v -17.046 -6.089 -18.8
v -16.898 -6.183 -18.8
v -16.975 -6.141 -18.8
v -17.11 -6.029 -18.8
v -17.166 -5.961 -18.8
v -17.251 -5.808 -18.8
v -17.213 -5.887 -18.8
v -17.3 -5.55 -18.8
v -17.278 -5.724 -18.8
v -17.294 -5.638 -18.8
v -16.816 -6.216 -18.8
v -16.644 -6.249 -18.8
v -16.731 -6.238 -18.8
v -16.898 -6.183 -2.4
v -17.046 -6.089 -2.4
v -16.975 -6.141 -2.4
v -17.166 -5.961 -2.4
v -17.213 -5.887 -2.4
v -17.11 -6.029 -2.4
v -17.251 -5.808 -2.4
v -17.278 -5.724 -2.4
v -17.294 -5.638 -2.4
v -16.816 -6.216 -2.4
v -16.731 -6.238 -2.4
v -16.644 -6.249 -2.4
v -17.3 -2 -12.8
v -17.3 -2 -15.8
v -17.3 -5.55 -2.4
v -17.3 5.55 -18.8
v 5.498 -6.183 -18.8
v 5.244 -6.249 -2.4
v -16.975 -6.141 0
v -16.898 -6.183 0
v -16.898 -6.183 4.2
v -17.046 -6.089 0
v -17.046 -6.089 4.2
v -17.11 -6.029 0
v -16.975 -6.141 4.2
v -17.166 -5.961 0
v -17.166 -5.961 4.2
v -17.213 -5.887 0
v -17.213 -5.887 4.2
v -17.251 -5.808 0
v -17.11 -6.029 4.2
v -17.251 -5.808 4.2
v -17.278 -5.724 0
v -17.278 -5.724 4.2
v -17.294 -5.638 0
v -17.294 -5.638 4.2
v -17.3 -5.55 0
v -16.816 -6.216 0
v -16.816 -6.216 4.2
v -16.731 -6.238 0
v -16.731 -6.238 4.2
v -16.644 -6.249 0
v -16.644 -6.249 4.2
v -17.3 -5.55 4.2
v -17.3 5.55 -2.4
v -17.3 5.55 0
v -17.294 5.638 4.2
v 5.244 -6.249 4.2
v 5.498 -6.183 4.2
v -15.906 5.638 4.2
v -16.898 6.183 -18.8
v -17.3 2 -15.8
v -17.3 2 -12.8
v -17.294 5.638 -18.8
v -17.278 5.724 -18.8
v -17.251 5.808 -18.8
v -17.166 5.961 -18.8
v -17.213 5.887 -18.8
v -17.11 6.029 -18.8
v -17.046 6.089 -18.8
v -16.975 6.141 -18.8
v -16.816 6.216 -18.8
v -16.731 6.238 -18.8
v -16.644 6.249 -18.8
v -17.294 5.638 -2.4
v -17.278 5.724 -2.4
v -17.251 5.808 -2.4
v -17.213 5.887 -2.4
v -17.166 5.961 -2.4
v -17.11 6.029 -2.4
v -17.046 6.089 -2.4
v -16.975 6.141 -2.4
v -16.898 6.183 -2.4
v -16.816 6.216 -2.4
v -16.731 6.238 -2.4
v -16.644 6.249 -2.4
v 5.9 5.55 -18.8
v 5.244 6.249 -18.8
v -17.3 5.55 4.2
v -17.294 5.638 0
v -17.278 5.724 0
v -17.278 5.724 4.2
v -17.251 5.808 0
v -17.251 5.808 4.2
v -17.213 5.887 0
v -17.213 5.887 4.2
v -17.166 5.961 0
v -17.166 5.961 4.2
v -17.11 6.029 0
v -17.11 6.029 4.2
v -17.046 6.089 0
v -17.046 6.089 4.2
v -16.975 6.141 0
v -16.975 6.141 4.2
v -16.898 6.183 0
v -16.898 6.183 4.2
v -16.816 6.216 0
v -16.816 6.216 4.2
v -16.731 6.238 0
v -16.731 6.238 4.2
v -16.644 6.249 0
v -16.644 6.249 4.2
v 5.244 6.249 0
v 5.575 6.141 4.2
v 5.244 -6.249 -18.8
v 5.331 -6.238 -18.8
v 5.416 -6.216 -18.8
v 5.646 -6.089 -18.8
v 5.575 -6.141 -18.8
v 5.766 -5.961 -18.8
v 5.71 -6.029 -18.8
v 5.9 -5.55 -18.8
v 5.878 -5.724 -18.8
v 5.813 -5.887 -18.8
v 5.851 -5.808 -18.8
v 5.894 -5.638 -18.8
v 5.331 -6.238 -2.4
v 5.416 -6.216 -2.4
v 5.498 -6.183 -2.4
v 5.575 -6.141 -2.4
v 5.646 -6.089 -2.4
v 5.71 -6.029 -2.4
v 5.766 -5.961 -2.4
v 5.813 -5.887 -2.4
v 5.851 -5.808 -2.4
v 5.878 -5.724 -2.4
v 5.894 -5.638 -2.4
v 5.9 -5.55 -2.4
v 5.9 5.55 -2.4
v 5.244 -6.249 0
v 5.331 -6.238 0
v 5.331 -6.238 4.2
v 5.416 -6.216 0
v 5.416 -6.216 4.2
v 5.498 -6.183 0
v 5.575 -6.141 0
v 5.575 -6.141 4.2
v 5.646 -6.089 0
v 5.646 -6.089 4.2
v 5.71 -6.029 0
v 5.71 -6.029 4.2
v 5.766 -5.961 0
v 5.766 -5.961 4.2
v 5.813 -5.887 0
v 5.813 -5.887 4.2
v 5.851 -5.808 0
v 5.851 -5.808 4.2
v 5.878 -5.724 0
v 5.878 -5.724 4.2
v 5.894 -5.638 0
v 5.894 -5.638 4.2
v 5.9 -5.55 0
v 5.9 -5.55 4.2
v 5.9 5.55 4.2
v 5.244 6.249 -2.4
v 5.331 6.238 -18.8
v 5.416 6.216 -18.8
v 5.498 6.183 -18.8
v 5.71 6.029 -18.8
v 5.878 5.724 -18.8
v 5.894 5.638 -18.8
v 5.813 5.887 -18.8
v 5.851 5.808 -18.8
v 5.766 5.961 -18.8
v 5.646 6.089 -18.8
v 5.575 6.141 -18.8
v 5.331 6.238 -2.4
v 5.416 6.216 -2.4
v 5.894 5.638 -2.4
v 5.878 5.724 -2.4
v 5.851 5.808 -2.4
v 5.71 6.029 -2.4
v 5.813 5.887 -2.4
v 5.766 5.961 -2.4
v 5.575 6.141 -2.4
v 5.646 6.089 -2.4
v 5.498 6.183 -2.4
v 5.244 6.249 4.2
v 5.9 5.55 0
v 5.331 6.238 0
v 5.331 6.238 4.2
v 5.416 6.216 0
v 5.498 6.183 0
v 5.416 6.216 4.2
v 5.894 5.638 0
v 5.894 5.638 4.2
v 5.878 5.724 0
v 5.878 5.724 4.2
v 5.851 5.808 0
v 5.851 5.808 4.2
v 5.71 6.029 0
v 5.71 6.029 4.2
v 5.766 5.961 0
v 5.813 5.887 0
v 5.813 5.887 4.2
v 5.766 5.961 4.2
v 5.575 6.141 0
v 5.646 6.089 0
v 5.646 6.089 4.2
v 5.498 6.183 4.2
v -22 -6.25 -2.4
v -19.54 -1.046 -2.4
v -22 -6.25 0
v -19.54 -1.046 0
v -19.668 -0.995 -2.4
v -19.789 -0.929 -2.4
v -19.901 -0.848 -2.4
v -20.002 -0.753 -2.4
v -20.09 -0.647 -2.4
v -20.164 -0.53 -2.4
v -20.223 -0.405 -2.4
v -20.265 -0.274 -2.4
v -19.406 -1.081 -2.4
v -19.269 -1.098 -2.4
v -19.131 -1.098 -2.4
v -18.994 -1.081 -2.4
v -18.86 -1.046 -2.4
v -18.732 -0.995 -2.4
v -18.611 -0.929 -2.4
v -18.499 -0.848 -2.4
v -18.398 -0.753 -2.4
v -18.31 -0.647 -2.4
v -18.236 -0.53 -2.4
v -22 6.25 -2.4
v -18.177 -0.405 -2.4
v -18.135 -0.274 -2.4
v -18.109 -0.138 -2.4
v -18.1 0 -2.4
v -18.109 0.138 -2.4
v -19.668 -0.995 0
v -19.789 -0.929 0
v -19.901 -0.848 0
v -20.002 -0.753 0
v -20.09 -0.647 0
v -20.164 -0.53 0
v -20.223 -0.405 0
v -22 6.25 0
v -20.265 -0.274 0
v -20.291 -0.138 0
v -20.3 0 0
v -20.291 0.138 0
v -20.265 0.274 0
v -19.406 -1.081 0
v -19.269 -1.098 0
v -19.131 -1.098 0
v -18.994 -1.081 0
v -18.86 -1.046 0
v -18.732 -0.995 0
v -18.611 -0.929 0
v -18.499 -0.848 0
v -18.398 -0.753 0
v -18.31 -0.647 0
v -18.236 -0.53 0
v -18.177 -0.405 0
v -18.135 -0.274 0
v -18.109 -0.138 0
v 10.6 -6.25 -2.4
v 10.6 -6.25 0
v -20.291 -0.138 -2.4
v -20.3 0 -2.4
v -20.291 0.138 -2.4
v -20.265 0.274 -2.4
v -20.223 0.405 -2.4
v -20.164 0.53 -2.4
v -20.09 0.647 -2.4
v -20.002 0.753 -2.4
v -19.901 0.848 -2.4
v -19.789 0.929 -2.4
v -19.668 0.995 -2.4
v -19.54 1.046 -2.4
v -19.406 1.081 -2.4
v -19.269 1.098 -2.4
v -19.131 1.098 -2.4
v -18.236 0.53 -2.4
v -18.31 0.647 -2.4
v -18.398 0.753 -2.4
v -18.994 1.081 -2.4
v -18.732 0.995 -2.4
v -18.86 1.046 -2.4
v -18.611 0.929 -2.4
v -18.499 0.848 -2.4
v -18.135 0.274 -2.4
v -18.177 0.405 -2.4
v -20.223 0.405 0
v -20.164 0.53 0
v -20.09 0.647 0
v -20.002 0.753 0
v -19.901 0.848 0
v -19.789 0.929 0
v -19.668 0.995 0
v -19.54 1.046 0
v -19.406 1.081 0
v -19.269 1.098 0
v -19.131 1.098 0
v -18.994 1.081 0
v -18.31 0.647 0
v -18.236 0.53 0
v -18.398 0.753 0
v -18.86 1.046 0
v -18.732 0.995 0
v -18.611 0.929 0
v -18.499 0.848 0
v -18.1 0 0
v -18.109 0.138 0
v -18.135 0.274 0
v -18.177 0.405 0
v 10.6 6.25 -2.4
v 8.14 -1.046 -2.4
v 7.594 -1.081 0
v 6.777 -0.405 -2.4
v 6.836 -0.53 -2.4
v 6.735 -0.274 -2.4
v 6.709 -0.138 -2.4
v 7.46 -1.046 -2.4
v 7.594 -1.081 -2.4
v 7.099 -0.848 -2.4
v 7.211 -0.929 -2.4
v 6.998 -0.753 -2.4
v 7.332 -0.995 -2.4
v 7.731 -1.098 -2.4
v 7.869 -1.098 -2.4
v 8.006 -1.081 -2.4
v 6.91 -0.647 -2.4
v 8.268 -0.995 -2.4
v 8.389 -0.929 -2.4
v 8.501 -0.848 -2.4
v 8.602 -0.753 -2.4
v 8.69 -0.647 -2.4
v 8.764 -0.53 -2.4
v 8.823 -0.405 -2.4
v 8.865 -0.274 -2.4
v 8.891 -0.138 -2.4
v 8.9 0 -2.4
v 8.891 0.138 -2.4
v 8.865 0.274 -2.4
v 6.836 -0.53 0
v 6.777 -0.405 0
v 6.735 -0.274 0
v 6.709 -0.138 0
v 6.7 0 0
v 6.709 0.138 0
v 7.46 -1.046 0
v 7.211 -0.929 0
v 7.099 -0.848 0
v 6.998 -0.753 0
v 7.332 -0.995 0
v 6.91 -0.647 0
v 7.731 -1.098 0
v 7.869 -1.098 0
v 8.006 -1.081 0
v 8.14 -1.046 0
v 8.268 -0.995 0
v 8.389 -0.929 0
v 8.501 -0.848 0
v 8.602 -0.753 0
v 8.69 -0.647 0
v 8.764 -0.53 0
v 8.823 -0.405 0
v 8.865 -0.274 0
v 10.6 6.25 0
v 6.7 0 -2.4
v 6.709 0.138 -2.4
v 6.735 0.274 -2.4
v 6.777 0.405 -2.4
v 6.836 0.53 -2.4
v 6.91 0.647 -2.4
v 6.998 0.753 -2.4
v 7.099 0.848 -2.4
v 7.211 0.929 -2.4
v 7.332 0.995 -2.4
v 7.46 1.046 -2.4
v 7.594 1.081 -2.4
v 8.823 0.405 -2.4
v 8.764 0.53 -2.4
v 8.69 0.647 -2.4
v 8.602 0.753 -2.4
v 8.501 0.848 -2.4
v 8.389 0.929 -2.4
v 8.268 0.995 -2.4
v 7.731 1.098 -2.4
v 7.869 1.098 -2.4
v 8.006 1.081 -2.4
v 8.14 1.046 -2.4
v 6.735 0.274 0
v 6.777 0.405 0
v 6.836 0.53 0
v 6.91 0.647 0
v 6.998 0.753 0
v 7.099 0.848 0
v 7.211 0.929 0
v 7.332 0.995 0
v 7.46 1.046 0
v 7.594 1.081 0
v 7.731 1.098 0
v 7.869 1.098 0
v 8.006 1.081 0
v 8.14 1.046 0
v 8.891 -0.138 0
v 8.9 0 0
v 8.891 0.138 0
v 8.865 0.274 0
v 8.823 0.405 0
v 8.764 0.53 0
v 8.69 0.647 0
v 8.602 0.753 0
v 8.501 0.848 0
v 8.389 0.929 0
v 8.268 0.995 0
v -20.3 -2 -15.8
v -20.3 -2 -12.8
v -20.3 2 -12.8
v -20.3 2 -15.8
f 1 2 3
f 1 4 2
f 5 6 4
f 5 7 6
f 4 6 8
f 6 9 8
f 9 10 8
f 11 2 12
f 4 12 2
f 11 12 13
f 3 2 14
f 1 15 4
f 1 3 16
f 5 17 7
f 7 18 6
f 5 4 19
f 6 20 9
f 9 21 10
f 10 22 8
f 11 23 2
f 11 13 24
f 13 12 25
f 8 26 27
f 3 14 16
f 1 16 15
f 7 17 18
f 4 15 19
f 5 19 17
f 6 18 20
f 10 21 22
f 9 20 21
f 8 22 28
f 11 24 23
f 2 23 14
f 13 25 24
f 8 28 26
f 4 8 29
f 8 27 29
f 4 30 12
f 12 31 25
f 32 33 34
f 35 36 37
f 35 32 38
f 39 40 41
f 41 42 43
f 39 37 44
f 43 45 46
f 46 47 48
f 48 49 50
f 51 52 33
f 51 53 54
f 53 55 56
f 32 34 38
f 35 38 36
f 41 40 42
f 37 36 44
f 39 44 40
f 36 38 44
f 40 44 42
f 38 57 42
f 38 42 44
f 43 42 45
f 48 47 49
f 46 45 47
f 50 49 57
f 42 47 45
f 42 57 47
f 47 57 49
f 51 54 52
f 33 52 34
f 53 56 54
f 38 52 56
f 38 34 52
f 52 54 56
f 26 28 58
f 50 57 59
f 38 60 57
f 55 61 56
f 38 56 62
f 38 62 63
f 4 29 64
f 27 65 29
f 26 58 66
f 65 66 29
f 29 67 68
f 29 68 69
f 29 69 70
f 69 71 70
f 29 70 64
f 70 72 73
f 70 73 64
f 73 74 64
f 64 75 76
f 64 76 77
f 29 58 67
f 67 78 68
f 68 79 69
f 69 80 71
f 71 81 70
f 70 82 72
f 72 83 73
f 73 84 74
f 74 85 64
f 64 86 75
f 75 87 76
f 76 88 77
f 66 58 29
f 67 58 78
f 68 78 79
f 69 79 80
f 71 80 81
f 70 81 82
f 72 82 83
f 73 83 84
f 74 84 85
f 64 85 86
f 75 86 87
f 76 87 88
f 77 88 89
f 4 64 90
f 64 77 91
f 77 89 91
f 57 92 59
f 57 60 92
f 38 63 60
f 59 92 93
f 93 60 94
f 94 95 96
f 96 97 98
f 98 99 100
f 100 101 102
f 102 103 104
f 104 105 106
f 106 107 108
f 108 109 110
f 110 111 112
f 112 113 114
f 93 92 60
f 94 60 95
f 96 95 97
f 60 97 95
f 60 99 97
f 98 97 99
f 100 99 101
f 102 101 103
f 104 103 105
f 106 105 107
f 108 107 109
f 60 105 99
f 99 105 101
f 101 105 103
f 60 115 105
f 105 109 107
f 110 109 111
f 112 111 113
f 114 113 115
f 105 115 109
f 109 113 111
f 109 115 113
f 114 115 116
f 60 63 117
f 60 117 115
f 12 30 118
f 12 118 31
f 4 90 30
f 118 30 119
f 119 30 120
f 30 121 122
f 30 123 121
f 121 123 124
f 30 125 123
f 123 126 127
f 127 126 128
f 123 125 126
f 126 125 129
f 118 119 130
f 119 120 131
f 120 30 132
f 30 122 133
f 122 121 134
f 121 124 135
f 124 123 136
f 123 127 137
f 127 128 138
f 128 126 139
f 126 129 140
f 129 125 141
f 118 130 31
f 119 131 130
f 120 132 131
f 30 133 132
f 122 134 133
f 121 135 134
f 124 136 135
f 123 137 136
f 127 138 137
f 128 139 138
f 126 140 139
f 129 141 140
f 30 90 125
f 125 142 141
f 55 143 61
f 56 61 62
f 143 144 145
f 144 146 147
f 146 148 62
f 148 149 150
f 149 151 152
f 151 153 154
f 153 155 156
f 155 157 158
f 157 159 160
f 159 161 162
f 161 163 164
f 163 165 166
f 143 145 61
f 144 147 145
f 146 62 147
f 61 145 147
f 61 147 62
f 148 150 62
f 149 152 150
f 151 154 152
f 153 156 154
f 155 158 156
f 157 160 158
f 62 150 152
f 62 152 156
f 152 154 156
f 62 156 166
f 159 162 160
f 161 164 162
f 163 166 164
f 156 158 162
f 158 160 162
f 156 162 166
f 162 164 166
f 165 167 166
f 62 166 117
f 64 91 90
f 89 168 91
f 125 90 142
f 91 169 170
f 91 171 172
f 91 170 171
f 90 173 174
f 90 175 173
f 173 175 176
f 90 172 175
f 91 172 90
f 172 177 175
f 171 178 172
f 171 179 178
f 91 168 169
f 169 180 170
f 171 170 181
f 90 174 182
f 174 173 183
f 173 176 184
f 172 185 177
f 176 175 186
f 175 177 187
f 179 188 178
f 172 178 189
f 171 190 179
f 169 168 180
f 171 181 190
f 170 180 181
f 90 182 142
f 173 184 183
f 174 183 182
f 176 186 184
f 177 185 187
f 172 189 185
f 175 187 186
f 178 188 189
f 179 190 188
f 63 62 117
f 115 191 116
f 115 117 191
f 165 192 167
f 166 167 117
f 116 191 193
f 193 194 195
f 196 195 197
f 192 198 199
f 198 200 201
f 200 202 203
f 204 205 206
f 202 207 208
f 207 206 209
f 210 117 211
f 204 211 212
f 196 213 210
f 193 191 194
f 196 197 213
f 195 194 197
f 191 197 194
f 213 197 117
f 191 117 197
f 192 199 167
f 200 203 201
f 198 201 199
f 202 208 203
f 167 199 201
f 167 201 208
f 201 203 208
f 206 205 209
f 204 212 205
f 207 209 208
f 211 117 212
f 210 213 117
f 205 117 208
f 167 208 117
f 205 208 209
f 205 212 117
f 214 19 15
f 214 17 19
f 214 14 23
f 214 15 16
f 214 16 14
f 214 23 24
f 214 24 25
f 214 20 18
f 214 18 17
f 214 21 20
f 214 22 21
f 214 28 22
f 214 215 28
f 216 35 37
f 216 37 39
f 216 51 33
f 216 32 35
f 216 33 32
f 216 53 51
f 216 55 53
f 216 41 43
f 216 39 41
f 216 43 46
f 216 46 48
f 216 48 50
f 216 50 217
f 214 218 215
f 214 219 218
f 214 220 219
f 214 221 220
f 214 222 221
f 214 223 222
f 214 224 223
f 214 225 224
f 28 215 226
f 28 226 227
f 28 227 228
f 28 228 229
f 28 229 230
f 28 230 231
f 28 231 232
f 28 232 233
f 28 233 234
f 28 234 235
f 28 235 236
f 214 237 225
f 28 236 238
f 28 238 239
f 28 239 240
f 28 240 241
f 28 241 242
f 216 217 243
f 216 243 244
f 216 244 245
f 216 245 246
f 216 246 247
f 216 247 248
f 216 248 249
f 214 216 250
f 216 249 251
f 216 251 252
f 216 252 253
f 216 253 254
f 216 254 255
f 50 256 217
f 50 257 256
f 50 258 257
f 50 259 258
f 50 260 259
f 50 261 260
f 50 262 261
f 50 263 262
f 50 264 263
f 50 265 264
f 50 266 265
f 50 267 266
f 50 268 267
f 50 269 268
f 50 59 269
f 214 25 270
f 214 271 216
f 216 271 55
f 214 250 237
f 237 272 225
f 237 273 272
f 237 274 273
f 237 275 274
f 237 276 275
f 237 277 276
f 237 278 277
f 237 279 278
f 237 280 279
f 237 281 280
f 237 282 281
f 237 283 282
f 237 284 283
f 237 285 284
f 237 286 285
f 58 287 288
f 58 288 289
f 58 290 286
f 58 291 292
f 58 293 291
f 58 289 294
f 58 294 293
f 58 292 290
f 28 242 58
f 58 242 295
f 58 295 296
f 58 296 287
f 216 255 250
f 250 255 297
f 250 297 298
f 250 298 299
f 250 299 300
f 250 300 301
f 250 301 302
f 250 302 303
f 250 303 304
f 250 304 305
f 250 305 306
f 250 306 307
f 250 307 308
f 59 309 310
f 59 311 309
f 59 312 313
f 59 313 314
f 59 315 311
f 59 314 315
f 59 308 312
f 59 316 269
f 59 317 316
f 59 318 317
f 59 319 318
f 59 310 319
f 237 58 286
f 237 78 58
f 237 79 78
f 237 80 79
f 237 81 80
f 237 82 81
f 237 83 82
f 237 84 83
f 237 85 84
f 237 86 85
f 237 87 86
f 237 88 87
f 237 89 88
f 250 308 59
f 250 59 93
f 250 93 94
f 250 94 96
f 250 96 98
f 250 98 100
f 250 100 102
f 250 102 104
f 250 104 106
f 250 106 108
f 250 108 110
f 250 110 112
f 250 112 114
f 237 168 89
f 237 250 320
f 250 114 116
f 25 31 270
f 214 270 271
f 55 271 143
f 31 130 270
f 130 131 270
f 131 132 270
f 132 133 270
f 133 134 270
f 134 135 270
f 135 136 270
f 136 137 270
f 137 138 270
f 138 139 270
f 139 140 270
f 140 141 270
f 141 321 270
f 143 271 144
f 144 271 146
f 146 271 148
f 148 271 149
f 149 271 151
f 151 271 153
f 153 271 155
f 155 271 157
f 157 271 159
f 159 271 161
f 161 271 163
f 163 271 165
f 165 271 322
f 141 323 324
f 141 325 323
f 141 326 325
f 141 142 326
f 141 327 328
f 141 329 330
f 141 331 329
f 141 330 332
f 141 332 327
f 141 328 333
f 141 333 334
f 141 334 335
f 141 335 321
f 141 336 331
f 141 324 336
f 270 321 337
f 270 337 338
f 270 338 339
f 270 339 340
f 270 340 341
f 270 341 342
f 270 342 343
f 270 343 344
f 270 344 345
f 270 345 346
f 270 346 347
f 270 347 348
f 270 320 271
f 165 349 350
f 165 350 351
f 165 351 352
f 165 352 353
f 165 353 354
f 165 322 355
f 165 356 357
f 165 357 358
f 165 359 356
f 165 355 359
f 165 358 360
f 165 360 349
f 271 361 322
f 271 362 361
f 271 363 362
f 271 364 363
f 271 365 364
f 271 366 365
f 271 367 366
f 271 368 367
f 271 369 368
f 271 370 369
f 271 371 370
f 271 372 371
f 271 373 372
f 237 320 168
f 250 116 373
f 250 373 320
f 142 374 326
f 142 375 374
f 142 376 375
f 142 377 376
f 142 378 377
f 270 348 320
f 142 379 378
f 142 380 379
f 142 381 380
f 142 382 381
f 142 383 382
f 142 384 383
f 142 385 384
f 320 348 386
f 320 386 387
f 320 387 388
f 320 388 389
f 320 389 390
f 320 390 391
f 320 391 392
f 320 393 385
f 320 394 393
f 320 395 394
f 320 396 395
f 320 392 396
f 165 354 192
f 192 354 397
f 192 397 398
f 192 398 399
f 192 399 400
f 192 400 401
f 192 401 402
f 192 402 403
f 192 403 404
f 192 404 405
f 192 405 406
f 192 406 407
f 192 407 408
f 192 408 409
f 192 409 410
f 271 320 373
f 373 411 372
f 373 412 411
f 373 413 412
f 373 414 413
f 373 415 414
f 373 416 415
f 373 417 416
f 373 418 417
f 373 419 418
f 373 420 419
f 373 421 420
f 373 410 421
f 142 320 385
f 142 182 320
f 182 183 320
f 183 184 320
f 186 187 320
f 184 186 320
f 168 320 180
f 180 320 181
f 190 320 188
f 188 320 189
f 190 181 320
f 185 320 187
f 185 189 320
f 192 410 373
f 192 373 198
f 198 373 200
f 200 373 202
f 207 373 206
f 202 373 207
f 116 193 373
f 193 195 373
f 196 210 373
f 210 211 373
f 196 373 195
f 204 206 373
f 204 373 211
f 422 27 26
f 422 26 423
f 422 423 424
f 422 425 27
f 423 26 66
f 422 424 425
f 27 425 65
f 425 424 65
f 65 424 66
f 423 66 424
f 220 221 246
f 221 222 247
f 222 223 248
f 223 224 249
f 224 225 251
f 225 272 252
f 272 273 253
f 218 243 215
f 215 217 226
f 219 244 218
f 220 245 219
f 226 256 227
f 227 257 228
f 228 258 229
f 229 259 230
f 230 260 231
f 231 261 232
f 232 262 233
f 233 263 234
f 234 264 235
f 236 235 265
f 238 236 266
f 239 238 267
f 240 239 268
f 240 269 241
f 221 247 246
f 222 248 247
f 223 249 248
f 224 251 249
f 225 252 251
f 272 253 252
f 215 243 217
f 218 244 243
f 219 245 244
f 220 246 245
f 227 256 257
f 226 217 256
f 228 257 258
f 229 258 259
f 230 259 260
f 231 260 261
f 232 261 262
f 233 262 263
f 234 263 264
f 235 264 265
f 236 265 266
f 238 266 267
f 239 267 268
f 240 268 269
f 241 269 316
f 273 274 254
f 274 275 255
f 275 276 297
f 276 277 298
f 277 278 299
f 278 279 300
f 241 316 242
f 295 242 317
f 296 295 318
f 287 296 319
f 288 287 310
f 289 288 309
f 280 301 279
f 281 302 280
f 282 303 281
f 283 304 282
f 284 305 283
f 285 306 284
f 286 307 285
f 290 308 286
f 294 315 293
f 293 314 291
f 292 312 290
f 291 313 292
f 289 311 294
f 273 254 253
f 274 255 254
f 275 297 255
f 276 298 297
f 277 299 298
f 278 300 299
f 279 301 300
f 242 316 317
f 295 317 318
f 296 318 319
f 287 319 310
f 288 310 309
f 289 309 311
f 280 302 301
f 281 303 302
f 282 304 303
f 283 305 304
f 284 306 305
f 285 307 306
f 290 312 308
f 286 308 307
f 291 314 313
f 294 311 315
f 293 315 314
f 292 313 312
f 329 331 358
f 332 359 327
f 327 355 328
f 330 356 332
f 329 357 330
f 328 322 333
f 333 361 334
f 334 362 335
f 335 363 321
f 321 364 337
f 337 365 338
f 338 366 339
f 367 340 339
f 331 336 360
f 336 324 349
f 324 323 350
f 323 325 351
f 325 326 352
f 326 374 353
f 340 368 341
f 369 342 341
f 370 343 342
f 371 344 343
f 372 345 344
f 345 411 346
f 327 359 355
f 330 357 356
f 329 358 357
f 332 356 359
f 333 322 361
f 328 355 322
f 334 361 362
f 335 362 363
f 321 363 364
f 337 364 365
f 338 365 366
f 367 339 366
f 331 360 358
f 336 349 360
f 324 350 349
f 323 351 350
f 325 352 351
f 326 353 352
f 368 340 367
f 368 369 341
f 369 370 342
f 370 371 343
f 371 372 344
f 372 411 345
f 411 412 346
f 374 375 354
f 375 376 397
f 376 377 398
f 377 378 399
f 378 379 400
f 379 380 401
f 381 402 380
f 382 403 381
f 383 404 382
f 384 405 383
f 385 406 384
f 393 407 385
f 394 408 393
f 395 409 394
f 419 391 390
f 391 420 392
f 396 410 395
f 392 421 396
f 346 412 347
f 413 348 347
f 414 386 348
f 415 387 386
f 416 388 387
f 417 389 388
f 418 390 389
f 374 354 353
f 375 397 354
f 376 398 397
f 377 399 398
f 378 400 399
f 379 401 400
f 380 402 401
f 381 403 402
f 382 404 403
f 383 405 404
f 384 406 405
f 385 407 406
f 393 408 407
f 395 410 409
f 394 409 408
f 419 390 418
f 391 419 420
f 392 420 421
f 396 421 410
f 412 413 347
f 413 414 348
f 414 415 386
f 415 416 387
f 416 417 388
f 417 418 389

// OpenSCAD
$fn = 50;

difference() {
	union() {
		translate(v = [-5.699999999999999, 0, -18.8]) {
			hull() {
				translate(v = [-10.9, 5.55, 0]) {
					cylinder(h = 23, r = 0.7);
				}
				translate(v = [10.9, 5.55, 0]) {
					cylinder(h = 23, r = 0.7);
				}
				translate(v = [-10.9, -5.55, 0]) {
					cylinder(h = 23, r = 0.7);
				}
				translate(v = [10.9, -5.55, 0]) {
					cylinder(h = 23, r = 0.7);
				}
			}
		}
		translate(v = [-22.0, -6.25, -2.4]) {
			cube(size = [32.6, 12.5, 2.4]);
		}
		translate(v = [-20.299999999999997, -2.0, -15.8]) {
			cube(size = [4, 4, 3]);
		}
	}
	union() {
		translate(v = [-19.2, 0, -4]) {
			cylinder(h = 5, r = 1.1);
		}
		translate(v = [7.8, 0, -4]) {
			cylinder(h = 5, r = 1.1);
		}
	}
}
